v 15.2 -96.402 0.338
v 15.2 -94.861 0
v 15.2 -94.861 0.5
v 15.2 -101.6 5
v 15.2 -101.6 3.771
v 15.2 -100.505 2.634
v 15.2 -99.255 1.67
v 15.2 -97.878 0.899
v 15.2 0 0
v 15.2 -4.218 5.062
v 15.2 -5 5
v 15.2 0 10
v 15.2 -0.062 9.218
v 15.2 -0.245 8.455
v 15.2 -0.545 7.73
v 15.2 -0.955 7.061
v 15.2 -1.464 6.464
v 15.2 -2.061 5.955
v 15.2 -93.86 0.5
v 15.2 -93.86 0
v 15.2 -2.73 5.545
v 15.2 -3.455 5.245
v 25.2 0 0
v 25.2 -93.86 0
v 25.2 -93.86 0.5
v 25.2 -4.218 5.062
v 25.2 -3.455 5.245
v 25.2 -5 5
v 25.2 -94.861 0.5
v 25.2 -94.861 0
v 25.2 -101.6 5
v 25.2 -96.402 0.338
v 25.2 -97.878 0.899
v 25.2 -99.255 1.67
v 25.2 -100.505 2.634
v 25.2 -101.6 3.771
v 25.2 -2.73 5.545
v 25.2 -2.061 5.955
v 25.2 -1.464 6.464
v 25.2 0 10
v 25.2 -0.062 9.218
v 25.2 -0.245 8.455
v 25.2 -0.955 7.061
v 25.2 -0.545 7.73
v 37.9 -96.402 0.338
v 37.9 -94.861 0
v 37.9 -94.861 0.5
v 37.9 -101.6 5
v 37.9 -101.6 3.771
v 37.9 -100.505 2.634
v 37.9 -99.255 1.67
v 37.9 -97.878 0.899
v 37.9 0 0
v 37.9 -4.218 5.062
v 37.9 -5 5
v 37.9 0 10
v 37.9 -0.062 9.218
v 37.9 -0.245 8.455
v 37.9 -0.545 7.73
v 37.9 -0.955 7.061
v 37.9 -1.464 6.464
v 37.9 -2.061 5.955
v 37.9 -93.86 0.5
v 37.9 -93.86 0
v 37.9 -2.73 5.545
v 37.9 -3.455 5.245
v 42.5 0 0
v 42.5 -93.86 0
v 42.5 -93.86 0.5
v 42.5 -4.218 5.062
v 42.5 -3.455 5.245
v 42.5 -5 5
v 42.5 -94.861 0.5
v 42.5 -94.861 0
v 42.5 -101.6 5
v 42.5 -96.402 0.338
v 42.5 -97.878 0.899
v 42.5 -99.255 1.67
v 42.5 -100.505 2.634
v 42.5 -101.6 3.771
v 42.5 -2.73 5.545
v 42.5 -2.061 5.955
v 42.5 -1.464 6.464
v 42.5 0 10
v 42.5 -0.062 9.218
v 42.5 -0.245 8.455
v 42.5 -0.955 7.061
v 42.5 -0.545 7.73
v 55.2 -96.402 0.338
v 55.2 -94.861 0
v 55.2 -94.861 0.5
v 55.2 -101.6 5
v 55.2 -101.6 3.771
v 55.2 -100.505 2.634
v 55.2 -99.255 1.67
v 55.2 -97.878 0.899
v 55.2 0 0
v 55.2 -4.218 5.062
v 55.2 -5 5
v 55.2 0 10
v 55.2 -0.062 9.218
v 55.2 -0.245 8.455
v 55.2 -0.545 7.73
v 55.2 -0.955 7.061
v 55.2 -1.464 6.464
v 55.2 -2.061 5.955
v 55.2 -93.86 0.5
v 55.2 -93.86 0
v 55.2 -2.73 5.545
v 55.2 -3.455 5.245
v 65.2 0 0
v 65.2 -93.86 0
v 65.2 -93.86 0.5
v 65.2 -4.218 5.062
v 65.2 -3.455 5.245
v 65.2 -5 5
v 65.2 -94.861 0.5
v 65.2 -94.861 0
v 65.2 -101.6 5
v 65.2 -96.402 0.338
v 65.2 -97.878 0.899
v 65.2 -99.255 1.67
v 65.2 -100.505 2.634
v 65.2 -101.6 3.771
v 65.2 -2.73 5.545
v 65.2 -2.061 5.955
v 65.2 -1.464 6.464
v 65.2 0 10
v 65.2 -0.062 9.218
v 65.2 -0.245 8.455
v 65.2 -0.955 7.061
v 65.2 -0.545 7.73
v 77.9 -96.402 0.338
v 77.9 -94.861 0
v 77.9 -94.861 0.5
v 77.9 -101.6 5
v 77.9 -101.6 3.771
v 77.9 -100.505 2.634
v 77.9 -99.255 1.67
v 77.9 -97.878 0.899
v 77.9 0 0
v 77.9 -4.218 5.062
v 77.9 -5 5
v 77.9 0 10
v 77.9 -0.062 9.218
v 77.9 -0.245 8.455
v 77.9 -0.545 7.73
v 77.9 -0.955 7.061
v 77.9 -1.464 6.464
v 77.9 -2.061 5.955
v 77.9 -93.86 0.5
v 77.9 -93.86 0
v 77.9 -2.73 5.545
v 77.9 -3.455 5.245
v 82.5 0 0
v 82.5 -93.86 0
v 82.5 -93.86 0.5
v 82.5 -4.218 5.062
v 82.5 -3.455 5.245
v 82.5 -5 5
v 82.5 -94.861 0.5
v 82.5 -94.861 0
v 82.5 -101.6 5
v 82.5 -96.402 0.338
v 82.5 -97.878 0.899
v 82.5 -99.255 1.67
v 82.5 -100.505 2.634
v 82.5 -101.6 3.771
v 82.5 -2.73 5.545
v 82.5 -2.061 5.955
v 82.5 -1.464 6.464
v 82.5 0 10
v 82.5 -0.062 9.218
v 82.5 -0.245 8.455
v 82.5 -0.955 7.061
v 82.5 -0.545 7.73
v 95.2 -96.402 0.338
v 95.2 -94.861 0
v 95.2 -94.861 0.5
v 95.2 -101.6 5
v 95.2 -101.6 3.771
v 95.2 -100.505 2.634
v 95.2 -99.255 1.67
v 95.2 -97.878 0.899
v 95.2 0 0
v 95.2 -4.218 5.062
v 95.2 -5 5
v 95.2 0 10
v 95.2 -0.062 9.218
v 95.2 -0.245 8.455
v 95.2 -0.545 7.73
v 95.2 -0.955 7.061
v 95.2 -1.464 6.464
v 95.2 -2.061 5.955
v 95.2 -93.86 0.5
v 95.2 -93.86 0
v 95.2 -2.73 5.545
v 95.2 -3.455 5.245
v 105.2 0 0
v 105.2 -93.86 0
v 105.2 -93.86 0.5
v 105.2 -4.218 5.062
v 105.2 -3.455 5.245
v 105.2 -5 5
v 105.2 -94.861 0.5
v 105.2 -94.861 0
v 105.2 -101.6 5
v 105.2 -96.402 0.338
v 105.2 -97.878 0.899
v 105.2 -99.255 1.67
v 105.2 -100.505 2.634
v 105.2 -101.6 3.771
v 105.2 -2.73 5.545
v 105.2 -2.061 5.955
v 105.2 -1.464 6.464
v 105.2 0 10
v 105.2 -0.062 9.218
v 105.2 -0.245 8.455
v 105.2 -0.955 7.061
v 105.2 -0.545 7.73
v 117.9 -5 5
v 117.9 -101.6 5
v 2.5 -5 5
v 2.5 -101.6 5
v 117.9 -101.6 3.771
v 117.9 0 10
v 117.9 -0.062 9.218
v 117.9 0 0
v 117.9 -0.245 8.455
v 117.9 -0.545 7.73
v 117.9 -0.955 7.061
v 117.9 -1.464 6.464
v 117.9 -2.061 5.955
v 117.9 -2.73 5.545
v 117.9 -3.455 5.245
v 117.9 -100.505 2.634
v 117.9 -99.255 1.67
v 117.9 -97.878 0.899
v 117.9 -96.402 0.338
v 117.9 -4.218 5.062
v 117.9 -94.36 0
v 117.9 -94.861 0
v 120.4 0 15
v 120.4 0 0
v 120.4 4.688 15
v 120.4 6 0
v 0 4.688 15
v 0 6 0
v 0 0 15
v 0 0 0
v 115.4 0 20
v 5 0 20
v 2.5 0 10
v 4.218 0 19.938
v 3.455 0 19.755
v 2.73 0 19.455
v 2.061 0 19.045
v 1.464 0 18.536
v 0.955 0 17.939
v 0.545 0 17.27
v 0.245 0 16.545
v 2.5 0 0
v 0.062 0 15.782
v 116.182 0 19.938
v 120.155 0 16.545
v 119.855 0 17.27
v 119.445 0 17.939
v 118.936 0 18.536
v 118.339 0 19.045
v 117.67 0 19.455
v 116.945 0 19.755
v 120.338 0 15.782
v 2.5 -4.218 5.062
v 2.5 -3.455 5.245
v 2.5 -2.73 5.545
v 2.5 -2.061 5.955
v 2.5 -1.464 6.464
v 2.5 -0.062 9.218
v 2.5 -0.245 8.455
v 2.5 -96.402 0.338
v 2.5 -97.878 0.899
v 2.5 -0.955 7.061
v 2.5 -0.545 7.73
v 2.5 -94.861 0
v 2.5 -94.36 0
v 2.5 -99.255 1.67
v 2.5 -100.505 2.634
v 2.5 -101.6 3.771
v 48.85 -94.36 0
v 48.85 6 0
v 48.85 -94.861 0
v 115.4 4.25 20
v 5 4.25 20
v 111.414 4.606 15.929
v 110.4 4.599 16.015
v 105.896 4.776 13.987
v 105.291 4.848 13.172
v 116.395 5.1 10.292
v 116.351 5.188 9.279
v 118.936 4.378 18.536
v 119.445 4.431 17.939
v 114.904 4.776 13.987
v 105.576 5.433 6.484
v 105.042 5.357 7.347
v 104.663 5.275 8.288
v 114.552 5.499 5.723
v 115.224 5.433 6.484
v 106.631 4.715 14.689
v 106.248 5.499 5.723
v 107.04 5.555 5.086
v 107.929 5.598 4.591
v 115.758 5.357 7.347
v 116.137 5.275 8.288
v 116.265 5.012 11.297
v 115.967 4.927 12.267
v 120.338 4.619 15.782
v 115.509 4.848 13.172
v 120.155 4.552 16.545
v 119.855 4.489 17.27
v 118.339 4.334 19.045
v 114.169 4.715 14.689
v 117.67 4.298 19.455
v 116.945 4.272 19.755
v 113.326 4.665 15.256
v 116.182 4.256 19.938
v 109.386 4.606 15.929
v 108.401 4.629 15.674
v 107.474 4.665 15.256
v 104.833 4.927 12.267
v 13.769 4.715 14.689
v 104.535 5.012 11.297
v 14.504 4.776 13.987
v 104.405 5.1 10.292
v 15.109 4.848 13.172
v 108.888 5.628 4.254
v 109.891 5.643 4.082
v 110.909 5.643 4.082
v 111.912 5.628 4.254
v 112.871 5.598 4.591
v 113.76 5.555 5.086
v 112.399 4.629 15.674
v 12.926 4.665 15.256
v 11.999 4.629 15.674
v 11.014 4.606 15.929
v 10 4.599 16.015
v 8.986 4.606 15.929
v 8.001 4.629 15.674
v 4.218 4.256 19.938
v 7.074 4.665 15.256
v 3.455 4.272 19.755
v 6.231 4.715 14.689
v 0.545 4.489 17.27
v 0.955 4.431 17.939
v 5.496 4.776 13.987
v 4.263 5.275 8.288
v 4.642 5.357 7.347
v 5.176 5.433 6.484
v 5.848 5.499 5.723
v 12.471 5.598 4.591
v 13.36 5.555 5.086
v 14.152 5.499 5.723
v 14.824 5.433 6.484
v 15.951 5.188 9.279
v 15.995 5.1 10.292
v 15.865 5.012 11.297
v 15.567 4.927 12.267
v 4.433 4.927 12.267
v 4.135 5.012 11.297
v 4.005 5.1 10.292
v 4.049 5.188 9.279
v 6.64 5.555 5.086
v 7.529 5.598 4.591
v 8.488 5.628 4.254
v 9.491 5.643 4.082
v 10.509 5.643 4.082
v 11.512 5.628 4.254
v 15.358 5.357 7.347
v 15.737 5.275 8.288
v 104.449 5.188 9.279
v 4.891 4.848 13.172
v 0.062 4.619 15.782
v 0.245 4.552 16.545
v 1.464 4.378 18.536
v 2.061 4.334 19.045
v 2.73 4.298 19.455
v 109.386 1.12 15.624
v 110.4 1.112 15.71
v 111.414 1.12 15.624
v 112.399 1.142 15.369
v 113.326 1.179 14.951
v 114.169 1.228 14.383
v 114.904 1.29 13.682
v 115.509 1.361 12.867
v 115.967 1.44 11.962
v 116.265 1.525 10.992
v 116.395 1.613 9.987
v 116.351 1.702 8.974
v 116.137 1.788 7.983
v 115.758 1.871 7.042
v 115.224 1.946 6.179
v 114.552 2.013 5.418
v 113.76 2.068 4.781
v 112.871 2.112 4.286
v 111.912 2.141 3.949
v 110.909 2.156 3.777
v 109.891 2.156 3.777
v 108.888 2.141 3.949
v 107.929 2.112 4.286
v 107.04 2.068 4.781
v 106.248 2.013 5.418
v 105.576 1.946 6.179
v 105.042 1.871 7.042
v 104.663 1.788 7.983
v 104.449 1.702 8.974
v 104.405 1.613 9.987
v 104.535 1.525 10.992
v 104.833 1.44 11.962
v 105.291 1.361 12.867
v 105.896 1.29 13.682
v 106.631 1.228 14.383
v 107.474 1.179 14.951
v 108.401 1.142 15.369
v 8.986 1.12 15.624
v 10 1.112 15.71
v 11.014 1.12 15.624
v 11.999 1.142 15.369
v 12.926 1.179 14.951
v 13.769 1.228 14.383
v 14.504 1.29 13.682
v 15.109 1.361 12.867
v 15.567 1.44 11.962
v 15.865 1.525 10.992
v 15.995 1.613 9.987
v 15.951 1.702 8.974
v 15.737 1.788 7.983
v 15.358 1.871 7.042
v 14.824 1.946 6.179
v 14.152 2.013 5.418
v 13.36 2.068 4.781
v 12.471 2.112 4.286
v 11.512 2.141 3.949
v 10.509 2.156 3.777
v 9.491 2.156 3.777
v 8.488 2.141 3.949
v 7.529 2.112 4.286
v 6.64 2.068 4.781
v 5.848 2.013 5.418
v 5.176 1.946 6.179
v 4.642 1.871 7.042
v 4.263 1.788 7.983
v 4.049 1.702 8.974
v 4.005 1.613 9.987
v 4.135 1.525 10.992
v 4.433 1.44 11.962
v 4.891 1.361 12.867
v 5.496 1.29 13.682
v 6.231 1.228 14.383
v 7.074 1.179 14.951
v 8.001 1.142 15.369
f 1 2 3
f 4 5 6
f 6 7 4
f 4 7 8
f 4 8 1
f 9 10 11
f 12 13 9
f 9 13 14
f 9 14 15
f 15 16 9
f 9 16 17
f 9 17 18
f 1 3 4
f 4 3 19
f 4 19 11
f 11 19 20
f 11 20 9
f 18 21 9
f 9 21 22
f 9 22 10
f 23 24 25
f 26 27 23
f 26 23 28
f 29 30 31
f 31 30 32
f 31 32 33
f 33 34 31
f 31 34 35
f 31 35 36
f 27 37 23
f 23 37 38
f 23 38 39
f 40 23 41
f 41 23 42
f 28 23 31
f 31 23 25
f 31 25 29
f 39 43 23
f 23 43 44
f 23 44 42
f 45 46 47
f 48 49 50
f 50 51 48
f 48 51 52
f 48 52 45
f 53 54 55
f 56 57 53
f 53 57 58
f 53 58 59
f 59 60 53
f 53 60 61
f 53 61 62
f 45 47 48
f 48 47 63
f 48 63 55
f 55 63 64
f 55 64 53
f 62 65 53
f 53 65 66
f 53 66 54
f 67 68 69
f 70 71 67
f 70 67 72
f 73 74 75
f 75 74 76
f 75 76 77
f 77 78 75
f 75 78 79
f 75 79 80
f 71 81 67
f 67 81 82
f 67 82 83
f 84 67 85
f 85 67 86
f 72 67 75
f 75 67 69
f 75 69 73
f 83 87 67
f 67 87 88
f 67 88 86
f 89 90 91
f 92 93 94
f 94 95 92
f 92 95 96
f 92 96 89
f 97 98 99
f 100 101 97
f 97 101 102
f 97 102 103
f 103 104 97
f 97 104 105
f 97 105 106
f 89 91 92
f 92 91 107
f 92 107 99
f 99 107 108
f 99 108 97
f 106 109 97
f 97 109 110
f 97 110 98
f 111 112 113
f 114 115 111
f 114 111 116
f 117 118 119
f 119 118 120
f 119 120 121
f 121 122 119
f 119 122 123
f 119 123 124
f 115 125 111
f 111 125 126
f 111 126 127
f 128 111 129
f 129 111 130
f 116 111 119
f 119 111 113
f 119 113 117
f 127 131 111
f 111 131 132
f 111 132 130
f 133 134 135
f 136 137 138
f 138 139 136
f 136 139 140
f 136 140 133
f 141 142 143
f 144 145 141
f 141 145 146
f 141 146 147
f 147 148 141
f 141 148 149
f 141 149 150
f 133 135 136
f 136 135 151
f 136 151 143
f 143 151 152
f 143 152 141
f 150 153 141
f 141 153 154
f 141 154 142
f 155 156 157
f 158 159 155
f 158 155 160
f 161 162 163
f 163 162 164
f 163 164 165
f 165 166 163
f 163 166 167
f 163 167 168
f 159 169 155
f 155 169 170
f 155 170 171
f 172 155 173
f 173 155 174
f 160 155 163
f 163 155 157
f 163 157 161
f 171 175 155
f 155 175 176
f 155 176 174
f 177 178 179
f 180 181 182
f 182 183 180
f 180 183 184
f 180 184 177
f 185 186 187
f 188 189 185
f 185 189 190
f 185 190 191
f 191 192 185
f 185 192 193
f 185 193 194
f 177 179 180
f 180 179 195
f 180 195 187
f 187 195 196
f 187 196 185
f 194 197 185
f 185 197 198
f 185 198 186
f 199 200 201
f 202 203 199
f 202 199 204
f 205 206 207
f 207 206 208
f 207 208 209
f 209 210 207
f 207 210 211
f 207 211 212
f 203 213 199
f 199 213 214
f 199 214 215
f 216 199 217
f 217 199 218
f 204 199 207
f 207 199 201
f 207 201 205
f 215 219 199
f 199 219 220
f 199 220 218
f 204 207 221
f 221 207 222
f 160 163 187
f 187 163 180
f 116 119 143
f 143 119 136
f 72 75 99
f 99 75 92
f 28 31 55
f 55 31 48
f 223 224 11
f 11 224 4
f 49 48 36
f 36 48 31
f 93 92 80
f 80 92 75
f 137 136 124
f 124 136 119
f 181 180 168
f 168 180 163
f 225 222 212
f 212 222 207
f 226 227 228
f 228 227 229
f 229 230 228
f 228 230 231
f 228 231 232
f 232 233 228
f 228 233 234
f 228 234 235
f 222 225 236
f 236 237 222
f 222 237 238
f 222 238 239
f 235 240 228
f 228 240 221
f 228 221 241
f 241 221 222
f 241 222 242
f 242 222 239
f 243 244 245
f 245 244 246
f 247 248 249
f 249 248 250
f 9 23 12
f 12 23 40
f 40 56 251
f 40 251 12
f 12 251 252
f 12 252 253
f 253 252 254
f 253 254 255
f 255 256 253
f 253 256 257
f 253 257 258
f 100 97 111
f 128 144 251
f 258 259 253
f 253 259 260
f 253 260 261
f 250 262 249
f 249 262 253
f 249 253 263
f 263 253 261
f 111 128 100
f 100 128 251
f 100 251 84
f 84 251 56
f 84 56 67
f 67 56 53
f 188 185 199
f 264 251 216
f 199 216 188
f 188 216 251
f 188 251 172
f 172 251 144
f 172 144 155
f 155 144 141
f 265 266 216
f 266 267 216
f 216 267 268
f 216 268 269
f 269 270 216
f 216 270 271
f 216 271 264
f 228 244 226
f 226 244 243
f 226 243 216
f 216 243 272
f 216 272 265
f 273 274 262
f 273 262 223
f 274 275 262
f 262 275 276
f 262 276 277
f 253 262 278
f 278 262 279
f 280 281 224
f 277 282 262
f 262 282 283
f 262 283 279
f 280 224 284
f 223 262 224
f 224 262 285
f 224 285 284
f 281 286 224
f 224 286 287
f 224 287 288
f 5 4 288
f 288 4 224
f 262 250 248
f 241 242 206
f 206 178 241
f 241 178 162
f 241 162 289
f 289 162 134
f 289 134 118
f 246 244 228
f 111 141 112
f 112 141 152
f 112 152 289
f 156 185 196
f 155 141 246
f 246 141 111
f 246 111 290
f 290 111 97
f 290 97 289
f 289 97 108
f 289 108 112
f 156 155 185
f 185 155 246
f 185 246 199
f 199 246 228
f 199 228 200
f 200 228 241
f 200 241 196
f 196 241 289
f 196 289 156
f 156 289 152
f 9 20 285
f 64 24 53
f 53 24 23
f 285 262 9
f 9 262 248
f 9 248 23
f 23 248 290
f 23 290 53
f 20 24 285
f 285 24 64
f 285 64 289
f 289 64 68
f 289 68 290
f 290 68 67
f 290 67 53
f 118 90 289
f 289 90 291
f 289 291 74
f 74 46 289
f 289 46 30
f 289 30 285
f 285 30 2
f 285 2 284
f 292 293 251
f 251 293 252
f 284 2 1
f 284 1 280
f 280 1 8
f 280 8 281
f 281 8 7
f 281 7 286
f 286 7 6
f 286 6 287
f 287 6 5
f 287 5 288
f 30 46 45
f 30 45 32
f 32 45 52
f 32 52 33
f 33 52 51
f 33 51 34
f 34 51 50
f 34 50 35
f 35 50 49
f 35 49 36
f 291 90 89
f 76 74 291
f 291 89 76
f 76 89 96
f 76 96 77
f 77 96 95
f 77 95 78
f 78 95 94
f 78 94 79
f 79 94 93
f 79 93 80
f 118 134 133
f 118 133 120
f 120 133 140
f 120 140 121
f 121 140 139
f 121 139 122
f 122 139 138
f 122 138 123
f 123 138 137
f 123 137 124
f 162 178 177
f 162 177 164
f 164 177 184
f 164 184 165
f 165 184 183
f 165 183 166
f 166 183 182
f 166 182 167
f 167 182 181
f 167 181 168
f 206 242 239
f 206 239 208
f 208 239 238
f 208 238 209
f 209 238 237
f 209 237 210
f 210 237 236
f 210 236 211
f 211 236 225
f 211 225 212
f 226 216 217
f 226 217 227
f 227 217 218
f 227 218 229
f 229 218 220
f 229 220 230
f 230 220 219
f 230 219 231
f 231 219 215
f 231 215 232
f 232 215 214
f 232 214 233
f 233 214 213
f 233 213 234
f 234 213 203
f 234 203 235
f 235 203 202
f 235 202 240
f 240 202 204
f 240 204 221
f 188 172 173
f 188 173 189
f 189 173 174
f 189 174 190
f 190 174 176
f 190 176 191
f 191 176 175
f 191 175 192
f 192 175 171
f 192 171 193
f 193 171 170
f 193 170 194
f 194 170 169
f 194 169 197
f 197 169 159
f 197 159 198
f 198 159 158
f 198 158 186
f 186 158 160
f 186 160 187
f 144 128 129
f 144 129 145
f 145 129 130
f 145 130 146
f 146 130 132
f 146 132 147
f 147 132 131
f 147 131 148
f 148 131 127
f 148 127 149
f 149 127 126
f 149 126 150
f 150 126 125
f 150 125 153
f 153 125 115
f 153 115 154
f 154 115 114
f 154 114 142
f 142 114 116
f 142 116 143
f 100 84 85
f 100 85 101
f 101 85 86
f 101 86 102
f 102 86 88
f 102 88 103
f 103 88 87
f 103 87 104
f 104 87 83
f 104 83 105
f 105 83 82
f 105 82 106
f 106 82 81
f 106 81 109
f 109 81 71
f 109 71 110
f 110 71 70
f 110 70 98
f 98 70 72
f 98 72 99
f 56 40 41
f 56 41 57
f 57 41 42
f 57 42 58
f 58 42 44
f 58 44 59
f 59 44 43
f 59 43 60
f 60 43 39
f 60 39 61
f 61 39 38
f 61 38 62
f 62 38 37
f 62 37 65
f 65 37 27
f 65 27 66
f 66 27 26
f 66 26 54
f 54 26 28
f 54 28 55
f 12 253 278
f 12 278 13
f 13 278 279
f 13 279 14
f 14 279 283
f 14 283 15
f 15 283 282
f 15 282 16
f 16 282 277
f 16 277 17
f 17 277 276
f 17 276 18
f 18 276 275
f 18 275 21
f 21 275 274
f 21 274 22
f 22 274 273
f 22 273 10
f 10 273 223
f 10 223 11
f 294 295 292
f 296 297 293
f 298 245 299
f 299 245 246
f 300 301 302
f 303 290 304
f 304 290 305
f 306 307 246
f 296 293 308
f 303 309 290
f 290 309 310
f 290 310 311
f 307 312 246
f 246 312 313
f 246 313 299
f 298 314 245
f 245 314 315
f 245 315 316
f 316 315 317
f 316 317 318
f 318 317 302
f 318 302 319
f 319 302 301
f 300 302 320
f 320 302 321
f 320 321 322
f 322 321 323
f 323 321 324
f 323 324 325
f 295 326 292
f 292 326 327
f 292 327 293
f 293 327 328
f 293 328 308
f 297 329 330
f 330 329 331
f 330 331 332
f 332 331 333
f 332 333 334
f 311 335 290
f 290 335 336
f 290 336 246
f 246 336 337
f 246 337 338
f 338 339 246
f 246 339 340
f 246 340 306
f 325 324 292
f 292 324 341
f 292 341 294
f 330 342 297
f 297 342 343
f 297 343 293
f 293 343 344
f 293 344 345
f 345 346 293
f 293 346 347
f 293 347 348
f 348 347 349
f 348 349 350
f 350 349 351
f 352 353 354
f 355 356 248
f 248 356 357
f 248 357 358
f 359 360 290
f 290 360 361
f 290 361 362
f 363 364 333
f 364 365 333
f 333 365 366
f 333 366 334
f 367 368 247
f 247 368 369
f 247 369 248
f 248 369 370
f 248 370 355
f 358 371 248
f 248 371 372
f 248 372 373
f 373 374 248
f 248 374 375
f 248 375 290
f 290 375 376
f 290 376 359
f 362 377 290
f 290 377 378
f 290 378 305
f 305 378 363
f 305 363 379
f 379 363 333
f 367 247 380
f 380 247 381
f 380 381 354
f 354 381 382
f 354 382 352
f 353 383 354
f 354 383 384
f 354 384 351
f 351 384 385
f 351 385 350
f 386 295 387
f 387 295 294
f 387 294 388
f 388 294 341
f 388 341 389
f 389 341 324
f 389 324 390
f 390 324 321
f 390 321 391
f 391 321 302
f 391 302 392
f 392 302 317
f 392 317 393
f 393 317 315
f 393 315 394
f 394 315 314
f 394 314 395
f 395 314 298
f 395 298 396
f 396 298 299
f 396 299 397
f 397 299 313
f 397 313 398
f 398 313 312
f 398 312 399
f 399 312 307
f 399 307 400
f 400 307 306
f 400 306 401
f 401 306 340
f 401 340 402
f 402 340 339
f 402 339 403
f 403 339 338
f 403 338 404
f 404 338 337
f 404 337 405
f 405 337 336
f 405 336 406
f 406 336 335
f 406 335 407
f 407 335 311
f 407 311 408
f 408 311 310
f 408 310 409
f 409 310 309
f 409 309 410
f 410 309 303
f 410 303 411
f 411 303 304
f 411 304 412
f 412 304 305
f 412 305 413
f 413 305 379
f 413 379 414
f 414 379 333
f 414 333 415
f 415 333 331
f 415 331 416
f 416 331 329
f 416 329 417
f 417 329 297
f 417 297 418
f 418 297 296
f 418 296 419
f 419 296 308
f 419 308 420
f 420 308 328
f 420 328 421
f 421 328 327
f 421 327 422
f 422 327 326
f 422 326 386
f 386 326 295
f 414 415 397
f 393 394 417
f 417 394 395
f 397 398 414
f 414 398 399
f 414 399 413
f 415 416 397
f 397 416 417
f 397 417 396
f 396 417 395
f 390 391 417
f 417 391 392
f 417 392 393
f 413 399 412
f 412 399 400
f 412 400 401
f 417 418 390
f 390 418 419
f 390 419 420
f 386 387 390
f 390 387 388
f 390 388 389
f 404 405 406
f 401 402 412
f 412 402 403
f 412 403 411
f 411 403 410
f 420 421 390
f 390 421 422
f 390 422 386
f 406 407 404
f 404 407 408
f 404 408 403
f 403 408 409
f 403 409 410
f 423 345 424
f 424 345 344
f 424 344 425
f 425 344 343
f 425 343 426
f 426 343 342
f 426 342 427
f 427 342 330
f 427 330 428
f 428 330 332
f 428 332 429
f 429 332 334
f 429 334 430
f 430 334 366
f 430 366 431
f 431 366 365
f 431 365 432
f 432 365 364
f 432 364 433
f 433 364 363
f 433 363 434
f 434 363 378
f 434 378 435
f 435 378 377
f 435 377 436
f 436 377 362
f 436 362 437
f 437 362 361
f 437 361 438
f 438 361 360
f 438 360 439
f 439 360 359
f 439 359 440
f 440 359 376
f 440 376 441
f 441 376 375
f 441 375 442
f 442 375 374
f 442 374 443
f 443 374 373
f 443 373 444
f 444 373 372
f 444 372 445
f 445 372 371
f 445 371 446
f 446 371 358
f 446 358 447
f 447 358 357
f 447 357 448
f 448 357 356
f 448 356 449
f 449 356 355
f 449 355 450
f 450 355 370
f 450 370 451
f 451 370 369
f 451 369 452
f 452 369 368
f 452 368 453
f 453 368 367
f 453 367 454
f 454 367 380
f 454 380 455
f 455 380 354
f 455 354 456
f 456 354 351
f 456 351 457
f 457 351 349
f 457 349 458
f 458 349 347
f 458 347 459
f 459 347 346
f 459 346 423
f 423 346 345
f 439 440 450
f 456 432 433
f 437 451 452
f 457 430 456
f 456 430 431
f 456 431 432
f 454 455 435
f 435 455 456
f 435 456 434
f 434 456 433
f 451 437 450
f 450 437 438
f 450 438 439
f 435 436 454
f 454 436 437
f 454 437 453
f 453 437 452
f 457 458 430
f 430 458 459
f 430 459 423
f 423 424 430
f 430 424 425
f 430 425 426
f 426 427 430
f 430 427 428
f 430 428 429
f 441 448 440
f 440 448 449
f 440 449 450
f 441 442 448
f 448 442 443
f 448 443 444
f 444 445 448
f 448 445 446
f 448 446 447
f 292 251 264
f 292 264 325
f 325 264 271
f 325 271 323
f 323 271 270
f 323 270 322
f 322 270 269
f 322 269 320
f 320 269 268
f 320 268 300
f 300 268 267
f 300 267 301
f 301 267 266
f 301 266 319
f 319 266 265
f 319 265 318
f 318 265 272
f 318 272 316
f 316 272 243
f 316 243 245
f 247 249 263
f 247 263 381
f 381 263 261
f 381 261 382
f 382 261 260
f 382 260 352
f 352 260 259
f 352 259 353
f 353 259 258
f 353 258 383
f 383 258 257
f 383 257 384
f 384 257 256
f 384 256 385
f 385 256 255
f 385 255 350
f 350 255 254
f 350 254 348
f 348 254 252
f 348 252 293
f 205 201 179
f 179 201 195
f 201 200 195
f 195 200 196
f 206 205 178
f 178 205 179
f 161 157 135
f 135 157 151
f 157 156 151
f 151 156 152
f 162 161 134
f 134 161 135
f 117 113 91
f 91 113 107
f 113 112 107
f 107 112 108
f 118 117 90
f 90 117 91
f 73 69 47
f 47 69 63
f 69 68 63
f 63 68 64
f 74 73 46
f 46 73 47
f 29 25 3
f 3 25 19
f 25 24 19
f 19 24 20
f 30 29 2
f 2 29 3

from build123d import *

# Parameters (mm, degrees)
BOSS_EXTRUDE1_DEPTH = 5
BOSS_EXTRUDE2_DEPTH = 20
CUT_EXTRUDE1_DEPTH  = 157.917080014
FILLET1_R           = 5
CUT_EXTRUDE6_DEPTH  = 159.804030176
SKETCH5_R           = 6
CUT_EXTRUDE7_DEPTH  = 3.5
FILLET2_R           = 5
SKETCH6_W           = 115.4
SKETCH6_H           = 1
BOSS_EXTRUDE3_DEPTH = 0.5


with BuildPart() as part:
    # Sketch1 → Boss-Extrude1 (new body)
    with BuildSketch(Plane.XY):
        Polygon((25.2, 0), (25.2, -101.6), (37.9, -101.6), (37.9, 0), (42.5, 0), (42.5, -101.6), (55.2, -101.6), (55.2, 0), (65.2, 0), (65.2, -101.6), (77.9, -101.6), (77.9, 0), (82.5, 0), (82.5, -101.6), (95.2, -101.6), (95.2, 0), (105.2, 0), (105.2, -101.6), (117.9, -101.6), (117.9, 0), (120.4, 0), (120.4, 6), (0, 6), (0, 0), (2.5, 0), (2.5, -101.6), (15.2, -101.6), (15.2, 0), align=None)
    extrude(amount=BOSS_EXTRUDE1_DEPTH)

    # Sketch1<3> → Boss-Extrude2 (add)
    with BuildSketch(Plane.XY):
        Polygon((15.2, 0), (25.2, 0), (37.9, 0), (42.5, 0), (55.2, 0), (65.2, 0), (77.9, 0), (82.5, 0), (95.2, 0), (105.2, 0), (117.9, 0), (120.4, 0), (120.4, 6), (0, 6), (0, 0), (2.5, 0), align=None)
    extrude(amount=BOSS_EXTRUDE2_DEPTH)

    # Sketch2 → Cut-Extrude1 (cut, through all)
    with BuildSketch(Plane(origin=(117.9, 0, 0), x_dir=(0, 0, -1), z_dir=(1, 0, 0))):
        with BuildLine():
            Line((-3.771412758, -101.6), (0, -101.6))
            Line((0, -101.6), (0, -94.860498406))
            ThreePointArc((0, -94.860498406), (-1.259194033, -98.580844365), (-3.771412758, -101.6))
        make_face()
    extrude(amount=-CUT_EXTRUDE1_DEPTH, mode=Mode.SUBTRACT)

    # Fillet1
    fillet1_edges = [part.edges().sort_by_distance(p)[0] for p in [
        (8.85, 0, 5),
        (31.55, 0, 5),
        (48.85, 0, 5),
        (71.55, 0, 5),
        (88.85, 0, 5),
        (111.55, 0, 5),
    ]]
    fillet(fillet1_edges, radius=FILLET1_R)

    # Sketch4 → Cut-Extrude6 (cut, through all)
    with BuildSketch(Plane(origin=(120.4, 0, 0), x_dir=(0, 0, -1), z_dir=(1, 0, 0))):
        Polygon((0, 6), (-20, 4.250226729), (-20, 6), align=None)
    extrude(amount=-CUT_EXTRUDE6_DEPTH, mode=Mode.SUBTRACT)

    # Sketch5 → Cut-Extrude7 (cut)
    with BuildSketch(Plane(origin=(0, 5.954423259, 0.520944533), x_dir=(1, 0, 0), z_dir=(0, 0.9961946980917462, 0.08715574274765159))):
        with Locations(Location((110.4, -9.553462294, 0), (0, 0, 270))):
            Circle(SKETCH5_R)
        with Locations(Location((10, -9.553462294, 0), (0, 0, 270))):
            Circle(SKETCH5_R)
    extrude(amount=-CUT_EXTRUDE7_DEPTH, mode=Mode.SUBTRACT)

    # Fillet2
    fillet2_edges = [part.edges().sort_by_distance(p)[0] for p in [
        (0, 2.125113365, 20),
        (120.4, 2.125113365, 20),
    ]]
    fillet(fillet2_edges, radius=FILLET2_R)

    # Sketch6 → Boss-Extrude3 (add)
    with BuildSketch(Plane.XY):
        with Locations((60.2, -94.360498406)):
            Rectangle(SKETCH6_W, SKETCH6_H)
    extrude(amount=BOSS_EXTRUDE3_DEPTH)


solid = part.part
